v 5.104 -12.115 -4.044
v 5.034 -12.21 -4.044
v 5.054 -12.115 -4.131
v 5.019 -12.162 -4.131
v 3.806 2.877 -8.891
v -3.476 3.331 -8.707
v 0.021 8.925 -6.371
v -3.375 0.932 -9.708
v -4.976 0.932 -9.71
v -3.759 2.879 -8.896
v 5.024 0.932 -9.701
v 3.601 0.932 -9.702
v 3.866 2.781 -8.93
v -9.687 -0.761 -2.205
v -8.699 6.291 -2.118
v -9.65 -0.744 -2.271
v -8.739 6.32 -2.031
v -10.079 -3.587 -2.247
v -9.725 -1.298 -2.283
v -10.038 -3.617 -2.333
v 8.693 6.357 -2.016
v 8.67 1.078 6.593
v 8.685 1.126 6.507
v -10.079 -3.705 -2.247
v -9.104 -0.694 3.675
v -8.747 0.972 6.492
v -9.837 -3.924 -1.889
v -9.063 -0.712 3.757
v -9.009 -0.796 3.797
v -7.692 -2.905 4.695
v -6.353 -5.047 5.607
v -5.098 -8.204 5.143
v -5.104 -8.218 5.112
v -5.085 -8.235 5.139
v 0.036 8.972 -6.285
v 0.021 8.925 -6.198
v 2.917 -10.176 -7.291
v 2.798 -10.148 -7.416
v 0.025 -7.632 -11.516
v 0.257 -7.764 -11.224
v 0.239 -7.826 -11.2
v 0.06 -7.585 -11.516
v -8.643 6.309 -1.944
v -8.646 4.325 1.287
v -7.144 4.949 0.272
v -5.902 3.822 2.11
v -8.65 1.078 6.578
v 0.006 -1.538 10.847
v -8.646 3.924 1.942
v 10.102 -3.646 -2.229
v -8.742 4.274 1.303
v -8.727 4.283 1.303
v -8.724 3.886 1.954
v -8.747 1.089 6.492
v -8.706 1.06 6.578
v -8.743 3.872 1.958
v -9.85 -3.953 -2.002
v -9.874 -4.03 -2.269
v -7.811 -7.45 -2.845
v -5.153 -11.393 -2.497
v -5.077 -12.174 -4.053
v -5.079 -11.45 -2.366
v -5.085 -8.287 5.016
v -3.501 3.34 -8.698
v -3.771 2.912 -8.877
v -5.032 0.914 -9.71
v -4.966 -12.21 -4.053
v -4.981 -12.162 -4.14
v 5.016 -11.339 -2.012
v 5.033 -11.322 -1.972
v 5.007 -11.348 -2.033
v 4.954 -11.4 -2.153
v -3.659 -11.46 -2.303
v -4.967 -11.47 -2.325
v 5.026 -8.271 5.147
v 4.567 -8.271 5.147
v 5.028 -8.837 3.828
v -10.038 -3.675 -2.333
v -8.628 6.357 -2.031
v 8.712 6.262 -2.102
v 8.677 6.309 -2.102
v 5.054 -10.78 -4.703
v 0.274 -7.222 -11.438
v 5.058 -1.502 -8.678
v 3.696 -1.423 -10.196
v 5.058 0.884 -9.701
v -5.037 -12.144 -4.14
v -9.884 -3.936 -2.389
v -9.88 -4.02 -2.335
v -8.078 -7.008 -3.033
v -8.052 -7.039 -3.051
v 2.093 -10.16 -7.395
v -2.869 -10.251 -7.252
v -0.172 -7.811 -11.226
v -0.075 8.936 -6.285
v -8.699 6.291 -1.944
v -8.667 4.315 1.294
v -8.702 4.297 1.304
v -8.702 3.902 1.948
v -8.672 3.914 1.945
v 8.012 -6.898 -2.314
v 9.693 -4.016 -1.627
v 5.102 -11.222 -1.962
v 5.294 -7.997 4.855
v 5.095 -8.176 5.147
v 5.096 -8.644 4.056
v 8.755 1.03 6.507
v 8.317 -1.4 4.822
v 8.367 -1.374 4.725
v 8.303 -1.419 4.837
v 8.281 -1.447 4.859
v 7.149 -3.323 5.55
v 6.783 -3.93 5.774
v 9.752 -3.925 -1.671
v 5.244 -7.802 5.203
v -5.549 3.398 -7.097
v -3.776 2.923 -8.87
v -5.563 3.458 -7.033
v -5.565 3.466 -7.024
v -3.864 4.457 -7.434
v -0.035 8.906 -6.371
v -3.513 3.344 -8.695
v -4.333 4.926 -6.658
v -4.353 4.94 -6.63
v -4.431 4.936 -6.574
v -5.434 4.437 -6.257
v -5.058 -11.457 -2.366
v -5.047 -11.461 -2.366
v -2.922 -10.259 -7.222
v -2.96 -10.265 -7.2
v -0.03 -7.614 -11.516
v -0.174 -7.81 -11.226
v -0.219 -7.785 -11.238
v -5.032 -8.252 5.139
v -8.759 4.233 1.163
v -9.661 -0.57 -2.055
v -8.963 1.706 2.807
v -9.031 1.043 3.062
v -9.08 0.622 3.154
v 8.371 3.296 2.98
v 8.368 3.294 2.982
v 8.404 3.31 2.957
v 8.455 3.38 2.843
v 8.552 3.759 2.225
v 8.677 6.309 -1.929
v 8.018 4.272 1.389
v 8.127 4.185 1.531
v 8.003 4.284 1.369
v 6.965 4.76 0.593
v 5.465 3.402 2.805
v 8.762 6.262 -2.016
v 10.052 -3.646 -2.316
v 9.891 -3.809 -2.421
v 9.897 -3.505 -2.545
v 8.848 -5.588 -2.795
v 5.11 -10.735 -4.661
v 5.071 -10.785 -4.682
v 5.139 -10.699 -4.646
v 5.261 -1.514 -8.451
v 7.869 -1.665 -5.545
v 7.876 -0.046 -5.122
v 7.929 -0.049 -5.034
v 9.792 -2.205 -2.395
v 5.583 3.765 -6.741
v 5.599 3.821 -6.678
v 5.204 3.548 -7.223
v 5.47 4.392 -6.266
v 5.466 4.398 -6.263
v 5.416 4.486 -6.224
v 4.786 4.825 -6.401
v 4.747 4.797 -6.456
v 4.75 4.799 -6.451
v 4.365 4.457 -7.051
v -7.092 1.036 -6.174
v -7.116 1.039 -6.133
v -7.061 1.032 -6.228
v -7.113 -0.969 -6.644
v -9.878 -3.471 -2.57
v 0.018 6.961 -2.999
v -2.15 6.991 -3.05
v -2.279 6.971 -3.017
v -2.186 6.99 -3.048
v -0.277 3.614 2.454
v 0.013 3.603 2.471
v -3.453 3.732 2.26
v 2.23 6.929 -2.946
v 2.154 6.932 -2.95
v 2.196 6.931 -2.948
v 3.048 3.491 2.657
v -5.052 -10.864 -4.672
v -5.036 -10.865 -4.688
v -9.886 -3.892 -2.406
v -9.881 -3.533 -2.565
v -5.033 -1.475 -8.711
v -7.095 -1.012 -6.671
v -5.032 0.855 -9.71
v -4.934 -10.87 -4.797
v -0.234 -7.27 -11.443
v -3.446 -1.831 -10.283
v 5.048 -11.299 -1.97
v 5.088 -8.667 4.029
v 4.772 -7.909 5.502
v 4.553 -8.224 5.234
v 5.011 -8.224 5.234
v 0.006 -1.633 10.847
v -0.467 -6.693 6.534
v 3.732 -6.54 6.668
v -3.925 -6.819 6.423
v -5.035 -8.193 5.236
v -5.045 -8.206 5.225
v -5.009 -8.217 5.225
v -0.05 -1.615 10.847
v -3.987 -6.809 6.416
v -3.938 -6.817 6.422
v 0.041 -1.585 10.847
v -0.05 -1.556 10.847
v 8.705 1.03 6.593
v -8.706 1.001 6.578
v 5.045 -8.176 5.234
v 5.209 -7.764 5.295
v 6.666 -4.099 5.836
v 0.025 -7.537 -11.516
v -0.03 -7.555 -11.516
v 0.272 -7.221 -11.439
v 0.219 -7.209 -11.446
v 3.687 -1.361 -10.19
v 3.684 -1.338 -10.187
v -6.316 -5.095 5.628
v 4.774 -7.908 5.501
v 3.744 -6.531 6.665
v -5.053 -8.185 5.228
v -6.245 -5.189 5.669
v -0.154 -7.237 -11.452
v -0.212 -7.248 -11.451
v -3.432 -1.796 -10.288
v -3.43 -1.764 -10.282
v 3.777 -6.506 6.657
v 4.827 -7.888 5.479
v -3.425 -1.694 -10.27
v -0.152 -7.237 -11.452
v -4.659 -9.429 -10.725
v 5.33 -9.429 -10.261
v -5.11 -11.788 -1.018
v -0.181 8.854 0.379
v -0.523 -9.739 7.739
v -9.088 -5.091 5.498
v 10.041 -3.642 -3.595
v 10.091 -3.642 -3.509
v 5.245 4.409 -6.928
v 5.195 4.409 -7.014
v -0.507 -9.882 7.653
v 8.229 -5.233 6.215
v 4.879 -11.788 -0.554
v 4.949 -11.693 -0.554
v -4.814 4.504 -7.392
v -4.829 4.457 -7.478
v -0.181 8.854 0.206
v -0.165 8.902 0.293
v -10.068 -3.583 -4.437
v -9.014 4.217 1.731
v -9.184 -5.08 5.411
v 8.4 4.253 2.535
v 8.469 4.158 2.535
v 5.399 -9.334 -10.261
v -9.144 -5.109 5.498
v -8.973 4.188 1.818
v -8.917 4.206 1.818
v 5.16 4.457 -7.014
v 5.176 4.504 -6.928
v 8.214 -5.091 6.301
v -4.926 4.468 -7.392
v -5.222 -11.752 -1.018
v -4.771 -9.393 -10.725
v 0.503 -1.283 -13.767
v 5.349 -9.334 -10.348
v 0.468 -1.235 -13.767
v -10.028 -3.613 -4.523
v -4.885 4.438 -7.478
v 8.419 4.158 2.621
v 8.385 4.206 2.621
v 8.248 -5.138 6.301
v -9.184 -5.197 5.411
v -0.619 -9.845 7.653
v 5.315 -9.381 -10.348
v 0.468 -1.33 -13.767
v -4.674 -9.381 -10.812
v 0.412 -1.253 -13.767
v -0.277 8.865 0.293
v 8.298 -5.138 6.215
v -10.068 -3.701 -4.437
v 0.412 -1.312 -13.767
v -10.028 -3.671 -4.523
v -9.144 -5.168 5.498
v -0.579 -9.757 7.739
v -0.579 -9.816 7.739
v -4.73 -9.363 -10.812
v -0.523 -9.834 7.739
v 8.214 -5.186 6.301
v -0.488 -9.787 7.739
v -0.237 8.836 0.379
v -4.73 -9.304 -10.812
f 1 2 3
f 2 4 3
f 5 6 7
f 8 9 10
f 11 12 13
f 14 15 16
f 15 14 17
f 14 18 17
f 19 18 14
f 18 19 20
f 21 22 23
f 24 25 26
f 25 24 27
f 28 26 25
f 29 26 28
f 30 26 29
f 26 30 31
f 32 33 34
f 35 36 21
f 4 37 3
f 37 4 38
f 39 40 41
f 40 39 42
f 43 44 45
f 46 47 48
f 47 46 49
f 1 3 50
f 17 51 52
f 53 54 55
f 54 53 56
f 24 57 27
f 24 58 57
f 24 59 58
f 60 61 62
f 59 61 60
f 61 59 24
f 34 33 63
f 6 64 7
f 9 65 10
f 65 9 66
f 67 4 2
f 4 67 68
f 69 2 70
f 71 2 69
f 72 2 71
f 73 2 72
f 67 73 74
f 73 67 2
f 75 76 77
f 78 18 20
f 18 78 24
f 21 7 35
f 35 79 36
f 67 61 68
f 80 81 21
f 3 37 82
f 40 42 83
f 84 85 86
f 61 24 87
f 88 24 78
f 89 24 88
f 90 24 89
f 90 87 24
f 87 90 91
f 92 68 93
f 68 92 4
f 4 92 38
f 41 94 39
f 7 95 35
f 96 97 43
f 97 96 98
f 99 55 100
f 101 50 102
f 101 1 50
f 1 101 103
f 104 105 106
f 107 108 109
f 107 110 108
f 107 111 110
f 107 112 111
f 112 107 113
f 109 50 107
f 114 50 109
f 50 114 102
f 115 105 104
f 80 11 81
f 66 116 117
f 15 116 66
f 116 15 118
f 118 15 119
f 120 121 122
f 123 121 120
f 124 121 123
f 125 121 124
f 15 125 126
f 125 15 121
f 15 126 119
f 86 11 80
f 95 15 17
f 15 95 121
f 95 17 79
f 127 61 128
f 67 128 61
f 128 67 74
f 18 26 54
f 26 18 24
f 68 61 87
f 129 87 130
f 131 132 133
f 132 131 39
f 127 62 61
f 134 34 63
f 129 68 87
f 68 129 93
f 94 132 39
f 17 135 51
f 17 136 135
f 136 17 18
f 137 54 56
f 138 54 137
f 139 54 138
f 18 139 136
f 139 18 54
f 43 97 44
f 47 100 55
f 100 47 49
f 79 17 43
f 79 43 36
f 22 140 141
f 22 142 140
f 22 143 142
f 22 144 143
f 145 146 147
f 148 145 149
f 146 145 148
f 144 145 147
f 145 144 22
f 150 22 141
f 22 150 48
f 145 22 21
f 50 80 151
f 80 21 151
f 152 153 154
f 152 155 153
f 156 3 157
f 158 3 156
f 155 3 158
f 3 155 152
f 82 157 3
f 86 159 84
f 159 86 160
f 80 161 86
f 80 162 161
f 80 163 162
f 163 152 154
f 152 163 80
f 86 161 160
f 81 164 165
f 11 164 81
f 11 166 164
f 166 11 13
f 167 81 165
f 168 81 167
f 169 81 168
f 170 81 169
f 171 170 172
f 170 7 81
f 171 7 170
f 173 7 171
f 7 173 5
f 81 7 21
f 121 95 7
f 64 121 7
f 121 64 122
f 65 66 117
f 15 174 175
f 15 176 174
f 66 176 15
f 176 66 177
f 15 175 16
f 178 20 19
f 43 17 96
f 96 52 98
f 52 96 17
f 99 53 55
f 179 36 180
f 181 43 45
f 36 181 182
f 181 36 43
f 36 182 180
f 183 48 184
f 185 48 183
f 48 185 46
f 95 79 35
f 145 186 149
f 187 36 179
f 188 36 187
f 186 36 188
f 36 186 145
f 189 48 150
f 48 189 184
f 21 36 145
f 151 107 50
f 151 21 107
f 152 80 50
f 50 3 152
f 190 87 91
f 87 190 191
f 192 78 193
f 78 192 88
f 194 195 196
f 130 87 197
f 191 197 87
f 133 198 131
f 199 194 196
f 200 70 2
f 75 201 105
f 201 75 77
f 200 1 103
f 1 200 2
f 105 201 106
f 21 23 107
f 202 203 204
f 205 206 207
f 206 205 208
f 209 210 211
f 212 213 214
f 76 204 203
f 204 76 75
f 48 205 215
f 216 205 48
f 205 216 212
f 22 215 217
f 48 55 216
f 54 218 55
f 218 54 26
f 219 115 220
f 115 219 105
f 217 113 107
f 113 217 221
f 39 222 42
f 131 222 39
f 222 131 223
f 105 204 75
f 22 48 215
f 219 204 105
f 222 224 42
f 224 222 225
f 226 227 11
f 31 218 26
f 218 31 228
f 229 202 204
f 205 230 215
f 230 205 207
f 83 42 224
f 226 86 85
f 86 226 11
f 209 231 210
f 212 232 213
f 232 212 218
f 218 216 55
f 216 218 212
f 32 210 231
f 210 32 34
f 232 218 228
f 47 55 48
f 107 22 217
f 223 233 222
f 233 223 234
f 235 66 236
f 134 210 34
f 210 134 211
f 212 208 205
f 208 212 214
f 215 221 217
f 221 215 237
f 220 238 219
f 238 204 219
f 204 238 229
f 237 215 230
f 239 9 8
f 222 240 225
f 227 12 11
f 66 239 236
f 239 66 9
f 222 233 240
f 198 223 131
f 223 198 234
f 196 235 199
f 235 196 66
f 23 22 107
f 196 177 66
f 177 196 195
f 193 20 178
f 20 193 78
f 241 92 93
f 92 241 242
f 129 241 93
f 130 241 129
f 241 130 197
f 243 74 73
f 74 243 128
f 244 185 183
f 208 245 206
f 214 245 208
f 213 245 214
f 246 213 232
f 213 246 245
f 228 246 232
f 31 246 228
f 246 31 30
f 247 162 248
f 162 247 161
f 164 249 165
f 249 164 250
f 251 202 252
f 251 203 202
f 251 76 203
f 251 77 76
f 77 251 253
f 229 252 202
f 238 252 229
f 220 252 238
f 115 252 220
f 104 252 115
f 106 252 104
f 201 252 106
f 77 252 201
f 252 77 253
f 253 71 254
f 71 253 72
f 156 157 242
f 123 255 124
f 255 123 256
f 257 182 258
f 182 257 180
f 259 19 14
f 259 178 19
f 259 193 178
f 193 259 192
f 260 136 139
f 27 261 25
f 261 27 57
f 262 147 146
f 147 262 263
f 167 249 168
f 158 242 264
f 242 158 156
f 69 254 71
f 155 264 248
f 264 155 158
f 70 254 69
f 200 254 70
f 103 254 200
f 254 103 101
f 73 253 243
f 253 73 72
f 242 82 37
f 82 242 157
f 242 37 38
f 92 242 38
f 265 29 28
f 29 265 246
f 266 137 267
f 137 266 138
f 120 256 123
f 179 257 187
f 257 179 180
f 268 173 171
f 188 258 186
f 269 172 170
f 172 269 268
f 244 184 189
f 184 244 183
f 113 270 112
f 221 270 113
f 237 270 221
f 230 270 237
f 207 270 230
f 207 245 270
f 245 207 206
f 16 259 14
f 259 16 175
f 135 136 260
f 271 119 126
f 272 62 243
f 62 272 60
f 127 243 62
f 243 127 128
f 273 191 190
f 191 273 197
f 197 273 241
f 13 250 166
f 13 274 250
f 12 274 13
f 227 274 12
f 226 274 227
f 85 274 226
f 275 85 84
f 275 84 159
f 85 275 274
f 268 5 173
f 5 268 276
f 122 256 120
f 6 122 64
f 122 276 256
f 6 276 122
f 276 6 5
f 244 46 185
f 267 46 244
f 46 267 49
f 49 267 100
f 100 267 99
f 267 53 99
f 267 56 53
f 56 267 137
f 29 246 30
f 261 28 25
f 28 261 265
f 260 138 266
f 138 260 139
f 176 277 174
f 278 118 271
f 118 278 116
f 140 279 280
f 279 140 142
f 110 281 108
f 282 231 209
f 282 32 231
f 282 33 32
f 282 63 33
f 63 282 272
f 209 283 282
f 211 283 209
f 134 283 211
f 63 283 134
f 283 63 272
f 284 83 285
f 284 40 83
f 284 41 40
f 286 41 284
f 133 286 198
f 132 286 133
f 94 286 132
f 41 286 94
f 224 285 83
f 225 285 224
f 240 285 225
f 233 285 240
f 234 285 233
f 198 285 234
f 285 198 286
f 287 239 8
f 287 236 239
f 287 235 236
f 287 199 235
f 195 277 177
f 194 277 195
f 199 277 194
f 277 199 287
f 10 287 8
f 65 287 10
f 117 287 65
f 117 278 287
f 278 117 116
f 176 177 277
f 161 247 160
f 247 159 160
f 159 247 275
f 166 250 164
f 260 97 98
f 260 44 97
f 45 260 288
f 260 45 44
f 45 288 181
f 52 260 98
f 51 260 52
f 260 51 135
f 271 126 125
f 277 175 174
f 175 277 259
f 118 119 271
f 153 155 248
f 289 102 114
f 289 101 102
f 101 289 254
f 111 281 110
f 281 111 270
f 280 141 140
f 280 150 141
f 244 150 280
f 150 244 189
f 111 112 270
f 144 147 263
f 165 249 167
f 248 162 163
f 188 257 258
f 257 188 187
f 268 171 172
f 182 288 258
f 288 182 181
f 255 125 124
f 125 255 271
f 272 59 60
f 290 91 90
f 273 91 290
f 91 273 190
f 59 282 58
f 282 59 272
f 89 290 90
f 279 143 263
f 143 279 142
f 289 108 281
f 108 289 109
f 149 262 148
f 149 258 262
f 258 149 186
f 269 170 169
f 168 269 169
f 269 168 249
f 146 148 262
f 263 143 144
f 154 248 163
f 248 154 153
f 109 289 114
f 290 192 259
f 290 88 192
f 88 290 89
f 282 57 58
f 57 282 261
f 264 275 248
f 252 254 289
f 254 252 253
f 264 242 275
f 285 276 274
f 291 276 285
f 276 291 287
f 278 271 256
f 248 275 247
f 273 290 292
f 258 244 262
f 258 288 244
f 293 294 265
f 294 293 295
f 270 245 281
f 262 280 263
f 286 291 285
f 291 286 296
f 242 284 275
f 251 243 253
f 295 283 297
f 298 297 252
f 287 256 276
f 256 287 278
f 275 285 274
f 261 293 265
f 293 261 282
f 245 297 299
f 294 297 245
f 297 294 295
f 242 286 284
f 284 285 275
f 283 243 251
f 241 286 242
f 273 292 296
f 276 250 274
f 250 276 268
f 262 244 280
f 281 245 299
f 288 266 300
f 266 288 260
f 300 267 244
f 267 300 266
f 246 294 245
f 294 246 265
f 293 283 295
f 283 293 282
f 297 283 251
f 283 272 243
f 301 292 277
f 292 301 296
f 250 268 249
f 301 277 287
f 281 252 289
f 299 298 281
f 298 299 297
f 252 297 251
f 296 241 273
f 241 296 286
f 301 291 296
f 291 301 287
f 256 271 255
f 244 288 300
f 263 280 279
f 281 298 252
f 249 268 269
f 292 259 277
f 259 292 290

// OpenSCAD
// Auto-generated OpenSCAD file

    inner_points = 10*[[-0.9987270749614695, -0.364205811638524, -0.4436890860803185], [0.9991182313764295, -0.36420581163853794, -0.35087673806764436], [-0.4844601077687184, 0.4409094125179242, -0.7391869071989888], [-0.5140713889852709, -1.1693210357949793, -0.10178509095531102], [0.5144625454002312, 0.4409094125179172, -0.6927807331926518], [0.4848512641836786, -1.1693210357949864, -0.055378916948973976], [-0.8932613027512826, 0.41583146142721766, 0.17309193139693055], [-0.9103573839327088, -0.513835521363569, 0.5410960415871743], [0.8369234853688419, 0.41583146142720556, 0.25346978256078845], [0.8198274041874156, -0.5138355213635811, 0.6214738927510323], [-0.019620868100507078, 0.8806649528226049, 0.029278801883737618], [-0.0538130304633598, -0.9786690127589686, 0.7652870222642252], [-0.46897543145439324, -0.933375714707972, -1.0725044943214548], [0.5299472217145562, -0.9333757147079789, -1.0260983203151177], [0.04529153573835777, -0.12826049055152355, -1.3680023154401253]];

    outer_points = 10*[[-0.9998038282183614, -0.36459847125866063, -0.22466188312211807], [1.0001954063490741, -0.36459847125866063, -0.22291210322967533], [-0.499158278691538, 0.08842950542533667, -0.9623065713566289], [-0.500449760461467, -0.8176264479426579, 0.513857695058614], [0.5008413385921798, 0.08842950542533667, -0.9614316814104075], [0.4995498568222507, -0.8176264479426579, 0.5147325850048354], [-0.8658480427340112, 0.626154295547598, -0.20310260203452007], [-0.8665936800815331, 0.10304264696972326, 0.6491612345484268], [0.8662021019508204, 0.626154295547598, -0.20158724819663343], [0.8654564646032984, 0.10304264696972326, 0.6506765883863135], [0.0005498482821656634, 0.8877101198365354, -0.6284768434070501], [-0.0009414264128783963, -0.1585131773192141, 1.0760508297588436], [-0.4996455845307593, -1.2114785717593914, -0.4053157694550875], [0.5003540327529584, -1.2114785717593914, -0.4044408795088661], [0.0009999649960640952, -0.7584505950753941, -1.1429604576895982]];

    // Convex hull for inner set (I)
    module inner_hull() {
        hull() {
            for (p = inner_points) {
                translate(p) sphere(r=0.1);
            }
        }
    }

    // Convex hull for outer set (O) minus inner hull (O \ I)
    module outer_minus_inner() {
        difference() {
            hull() {
                for (p = outer_points) {
                    translate(p) sphere(r=0.1);
                }
            }
            inner_hull(); // Subtract inner hull
        }
    }

    // Convex hull for outer set (O) minus all translated inner hulls
    module outer_minus_AllTranslationInner() {
        difference() {
            hull() {
                for (p = outer_points) {
                    translate(p) sphere(r=0.1);
                }
            }
            hull() {
                translate([0,0,50]) inner_hull();
                translate([0,0,-50]) inner_hull();
            }; // Subtract translated inner hulls
        }
    }

    // Difference between outer_minus_inner and outer_minus_AllTranslationInner
    module outer_minus_inner_diff() {
        difference() {
            // Outer minus inner
            difference() {
                hull() {
                    for (p = outer_points) {
                        translate(p) sphere(r=0.1);
                    }
                }
                inner_hull();
            }

            // Subtract Outer minus AllTranslationInner
            difference() {
                hull() {
                    for (p = outer_points) {
                        translate(p) sphere(r=0.1);
                    }
                }
                hull() {
                    translate([0,0,50]) inner_hull();
                    translate([0,0,-50]) inner_hull();
                };
            }
        }
    }

    // Rendering all with colors applied
    color([1, 0, 0, 0.5]) inner_hull(); // Transparent red
    color([0, 1, 0, 1]) outer_minus_AllTranslationInner(); // Opaque green
    color([1, 1, 0, 1]) outer_minus_inner_diff(); // Opaque yellow
    
